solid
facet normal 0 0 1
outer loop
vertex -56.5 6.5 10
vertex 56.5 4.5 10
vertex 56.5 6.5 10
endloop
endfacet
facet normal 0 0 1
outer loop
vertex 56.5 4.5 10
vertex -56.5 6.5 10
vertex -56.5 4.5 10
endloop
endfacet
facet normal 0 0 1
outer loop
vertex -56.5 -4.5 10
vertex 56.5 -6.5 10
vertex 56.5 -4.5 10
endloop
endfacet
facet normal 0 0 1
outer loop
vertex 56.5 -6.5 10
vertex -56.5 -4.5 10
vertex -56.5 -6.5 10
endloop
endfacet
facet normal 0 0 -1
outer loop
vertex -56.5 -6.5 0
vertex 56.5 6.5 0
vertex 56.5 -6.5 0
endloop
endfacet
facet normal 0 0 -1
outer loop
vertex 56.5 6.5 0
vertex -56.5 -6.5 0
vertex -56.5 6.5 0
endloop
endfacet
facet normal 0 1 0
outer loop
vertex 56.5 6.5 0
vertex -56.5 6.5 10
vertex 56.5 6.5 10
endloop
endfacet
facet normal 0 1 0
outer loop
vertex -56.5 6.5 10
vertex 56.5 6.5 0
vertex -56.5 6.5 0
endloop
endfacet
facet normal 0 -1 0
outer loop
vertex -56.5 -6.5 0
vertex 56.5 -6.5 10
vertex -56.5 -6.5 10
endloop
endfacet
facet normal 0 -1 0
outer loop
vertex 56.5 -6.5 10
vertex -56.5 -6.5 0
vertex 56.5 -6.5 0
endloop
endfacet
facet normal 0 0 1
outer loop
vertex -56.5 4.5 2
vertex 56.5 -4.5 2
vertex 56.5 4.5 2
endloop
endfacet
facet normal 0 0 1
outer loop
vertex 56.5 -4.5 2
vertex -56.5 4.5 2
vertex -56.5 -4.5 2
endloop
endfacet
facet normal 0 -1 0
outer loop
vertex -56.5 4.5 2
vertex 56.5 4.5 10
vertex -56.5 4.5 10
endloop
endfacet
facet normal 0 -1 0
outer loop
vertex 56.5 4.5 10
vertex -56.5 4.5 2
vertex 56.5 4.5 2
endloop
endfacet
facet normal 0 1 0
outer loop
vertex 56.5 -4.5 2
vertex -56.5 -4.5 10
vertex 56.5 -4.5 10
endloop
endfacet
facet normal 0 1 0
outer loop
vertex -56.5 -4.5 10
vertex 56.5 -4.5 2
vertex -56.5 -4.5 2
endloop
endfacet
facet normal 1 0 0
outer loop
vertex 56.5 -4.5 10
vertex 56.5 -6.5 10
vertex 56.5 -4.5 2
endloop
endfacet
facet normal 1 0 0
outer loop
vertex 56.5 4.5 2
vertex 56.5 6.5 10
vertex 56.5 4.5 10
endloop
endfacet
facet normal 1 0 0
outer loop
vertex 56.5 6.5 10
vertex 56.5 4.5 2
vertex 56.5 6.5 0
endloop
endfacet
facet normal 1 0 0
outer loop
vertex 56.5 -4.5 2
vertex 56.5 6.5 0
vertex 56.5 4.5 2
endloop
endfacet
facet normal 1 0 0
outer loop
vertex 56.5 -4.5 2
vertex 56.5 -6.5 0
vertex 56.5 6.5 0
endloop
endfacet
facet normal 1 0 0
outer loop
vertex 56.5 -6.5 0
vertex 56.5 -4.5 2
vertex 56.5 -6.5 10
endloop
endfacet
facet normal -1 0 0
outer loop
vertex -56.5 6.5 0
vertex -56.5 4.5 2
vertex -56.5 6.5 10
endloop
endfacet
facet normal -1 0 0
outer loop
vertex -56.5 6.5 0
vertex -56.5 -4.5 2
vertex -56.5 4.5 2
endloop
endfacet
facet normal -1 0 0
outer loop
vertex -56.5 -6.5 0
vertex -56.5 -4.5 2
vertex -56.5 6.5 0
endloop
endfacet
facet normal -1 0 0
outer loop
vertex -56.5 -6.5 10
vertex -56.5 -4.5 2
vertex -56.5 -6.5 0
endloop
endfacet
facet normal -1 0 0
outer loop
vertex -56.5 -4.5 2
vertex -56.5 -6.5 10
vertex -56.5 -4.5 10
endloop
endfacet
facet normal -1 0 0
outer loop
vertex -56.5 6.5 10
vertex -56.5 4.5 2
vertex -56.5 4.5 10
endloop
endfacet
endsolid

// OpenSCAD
// file: common.scad
module draw_base(center_size, total_width, wall_height, wall_thickness) {
    difference() {
        translate([-total_width/2, -total_width/2, 0])
            cube([total_width, total_width, wall_height]);
        translate([-center_size/2, -center_size/2, wall_thickness])
            cube([center_size, center_size, wall_height]);
    }
}

module single_sleeve(sleeve_length, total_width, groove_width, wall_height, wall_thickness, center_size) {
    difference() {
        translate([center_size/2, -total_width/2, 0])
            cube([sleeve_length, total_width, wall_height]);
        translate([center_size/2, -total_width/2 + wall_thickness, wall_thickness])
            cube([sleeve_length, groove_width, wall_height]);
    }
}

module cut_wall_opening(side, center_size, groove_width, wall_height, wall_thickness) {
    if (side == 0) {
        translate([center_size/2, -center_size/2, wall_thickness])
            cube([wall_thickness, groove_width, wall_height]);
    } else if (side == 1) {
        translate([-center_size/2, center_size/2, wall_thickness])
            cube([groove_width, wall_thickness, wall_height]);
    } else if (side == 2) {
        translate([-center_size/2 - wall_thickness, -center_size/2, wall_thickness])
            cube([wall_thickness, groove_width, wall_height]);
    } else if (side == 3) {
        translate([-center_size/2, -center_size/2 - wall_thickness, wall_thickness])
            cube([groove_width, wall_thickness, wall_height]);
    }
}

module attach_sleeve(side, sleeve_length, total_width, groove_width, wall_height, wall_thickness, center_size) {
    if (side == 0) {
        single_sleeve(sleeve_length, total_width, groove_width, wall_height, wall_thickness, center_size);
    } else if (side == 1) {
        rotate([0, 0, 90])
            single_sleeve(sleeve_length, total_width, groove_width, wall_height, wall_thickness, center_size);
    } else if (side == 2) {
        rotate([0, 0, 180])
            single_sleeve(sleeve_length, total_width, groove_width, wall_height, wall_thickness, center_size);
    } else if (side == 3) {
        rotate([0, 0, 270])
            single_sleeve(sleeve_length, total_width, groove_width, wall_height, wall_thickness, center_size);
    }
}

module add_dowel(x, y, dowel_diameter, dowel_depth) {
    translate([x, y, -dowel_depth])
        cylinder(h=dowel_depth, d=dowel_diameter, $fn=30);
}
// main file
use <common.scad>

center_size = 9;
sleeve_reach = 56.5;
groove_width = 9;
wall_height = 10;
wall_thickness = 2;

total_width = groove_width + 2 * wall_thickness;
sleeve_length = sleeve_reach - center_size/2;

union() {
    difference() {
        draw_base(center_size, total_width, wall_height, wall_thickness);
        cut_wall_opening(0, center_size, groove_width, wall_height, wall_thickness);
        cut_wall_opening(2, center_size, groove_width, wall_height, wall_thickness);
    }
    attach_sleeve(0, sleeve_length, total_width, groove_width, wall_height, wall_thickness, center_size);
    attach_sleeve(2, sleeve_length, total_width, groove_width, wall_height, wall_thickness, center_size);
}
